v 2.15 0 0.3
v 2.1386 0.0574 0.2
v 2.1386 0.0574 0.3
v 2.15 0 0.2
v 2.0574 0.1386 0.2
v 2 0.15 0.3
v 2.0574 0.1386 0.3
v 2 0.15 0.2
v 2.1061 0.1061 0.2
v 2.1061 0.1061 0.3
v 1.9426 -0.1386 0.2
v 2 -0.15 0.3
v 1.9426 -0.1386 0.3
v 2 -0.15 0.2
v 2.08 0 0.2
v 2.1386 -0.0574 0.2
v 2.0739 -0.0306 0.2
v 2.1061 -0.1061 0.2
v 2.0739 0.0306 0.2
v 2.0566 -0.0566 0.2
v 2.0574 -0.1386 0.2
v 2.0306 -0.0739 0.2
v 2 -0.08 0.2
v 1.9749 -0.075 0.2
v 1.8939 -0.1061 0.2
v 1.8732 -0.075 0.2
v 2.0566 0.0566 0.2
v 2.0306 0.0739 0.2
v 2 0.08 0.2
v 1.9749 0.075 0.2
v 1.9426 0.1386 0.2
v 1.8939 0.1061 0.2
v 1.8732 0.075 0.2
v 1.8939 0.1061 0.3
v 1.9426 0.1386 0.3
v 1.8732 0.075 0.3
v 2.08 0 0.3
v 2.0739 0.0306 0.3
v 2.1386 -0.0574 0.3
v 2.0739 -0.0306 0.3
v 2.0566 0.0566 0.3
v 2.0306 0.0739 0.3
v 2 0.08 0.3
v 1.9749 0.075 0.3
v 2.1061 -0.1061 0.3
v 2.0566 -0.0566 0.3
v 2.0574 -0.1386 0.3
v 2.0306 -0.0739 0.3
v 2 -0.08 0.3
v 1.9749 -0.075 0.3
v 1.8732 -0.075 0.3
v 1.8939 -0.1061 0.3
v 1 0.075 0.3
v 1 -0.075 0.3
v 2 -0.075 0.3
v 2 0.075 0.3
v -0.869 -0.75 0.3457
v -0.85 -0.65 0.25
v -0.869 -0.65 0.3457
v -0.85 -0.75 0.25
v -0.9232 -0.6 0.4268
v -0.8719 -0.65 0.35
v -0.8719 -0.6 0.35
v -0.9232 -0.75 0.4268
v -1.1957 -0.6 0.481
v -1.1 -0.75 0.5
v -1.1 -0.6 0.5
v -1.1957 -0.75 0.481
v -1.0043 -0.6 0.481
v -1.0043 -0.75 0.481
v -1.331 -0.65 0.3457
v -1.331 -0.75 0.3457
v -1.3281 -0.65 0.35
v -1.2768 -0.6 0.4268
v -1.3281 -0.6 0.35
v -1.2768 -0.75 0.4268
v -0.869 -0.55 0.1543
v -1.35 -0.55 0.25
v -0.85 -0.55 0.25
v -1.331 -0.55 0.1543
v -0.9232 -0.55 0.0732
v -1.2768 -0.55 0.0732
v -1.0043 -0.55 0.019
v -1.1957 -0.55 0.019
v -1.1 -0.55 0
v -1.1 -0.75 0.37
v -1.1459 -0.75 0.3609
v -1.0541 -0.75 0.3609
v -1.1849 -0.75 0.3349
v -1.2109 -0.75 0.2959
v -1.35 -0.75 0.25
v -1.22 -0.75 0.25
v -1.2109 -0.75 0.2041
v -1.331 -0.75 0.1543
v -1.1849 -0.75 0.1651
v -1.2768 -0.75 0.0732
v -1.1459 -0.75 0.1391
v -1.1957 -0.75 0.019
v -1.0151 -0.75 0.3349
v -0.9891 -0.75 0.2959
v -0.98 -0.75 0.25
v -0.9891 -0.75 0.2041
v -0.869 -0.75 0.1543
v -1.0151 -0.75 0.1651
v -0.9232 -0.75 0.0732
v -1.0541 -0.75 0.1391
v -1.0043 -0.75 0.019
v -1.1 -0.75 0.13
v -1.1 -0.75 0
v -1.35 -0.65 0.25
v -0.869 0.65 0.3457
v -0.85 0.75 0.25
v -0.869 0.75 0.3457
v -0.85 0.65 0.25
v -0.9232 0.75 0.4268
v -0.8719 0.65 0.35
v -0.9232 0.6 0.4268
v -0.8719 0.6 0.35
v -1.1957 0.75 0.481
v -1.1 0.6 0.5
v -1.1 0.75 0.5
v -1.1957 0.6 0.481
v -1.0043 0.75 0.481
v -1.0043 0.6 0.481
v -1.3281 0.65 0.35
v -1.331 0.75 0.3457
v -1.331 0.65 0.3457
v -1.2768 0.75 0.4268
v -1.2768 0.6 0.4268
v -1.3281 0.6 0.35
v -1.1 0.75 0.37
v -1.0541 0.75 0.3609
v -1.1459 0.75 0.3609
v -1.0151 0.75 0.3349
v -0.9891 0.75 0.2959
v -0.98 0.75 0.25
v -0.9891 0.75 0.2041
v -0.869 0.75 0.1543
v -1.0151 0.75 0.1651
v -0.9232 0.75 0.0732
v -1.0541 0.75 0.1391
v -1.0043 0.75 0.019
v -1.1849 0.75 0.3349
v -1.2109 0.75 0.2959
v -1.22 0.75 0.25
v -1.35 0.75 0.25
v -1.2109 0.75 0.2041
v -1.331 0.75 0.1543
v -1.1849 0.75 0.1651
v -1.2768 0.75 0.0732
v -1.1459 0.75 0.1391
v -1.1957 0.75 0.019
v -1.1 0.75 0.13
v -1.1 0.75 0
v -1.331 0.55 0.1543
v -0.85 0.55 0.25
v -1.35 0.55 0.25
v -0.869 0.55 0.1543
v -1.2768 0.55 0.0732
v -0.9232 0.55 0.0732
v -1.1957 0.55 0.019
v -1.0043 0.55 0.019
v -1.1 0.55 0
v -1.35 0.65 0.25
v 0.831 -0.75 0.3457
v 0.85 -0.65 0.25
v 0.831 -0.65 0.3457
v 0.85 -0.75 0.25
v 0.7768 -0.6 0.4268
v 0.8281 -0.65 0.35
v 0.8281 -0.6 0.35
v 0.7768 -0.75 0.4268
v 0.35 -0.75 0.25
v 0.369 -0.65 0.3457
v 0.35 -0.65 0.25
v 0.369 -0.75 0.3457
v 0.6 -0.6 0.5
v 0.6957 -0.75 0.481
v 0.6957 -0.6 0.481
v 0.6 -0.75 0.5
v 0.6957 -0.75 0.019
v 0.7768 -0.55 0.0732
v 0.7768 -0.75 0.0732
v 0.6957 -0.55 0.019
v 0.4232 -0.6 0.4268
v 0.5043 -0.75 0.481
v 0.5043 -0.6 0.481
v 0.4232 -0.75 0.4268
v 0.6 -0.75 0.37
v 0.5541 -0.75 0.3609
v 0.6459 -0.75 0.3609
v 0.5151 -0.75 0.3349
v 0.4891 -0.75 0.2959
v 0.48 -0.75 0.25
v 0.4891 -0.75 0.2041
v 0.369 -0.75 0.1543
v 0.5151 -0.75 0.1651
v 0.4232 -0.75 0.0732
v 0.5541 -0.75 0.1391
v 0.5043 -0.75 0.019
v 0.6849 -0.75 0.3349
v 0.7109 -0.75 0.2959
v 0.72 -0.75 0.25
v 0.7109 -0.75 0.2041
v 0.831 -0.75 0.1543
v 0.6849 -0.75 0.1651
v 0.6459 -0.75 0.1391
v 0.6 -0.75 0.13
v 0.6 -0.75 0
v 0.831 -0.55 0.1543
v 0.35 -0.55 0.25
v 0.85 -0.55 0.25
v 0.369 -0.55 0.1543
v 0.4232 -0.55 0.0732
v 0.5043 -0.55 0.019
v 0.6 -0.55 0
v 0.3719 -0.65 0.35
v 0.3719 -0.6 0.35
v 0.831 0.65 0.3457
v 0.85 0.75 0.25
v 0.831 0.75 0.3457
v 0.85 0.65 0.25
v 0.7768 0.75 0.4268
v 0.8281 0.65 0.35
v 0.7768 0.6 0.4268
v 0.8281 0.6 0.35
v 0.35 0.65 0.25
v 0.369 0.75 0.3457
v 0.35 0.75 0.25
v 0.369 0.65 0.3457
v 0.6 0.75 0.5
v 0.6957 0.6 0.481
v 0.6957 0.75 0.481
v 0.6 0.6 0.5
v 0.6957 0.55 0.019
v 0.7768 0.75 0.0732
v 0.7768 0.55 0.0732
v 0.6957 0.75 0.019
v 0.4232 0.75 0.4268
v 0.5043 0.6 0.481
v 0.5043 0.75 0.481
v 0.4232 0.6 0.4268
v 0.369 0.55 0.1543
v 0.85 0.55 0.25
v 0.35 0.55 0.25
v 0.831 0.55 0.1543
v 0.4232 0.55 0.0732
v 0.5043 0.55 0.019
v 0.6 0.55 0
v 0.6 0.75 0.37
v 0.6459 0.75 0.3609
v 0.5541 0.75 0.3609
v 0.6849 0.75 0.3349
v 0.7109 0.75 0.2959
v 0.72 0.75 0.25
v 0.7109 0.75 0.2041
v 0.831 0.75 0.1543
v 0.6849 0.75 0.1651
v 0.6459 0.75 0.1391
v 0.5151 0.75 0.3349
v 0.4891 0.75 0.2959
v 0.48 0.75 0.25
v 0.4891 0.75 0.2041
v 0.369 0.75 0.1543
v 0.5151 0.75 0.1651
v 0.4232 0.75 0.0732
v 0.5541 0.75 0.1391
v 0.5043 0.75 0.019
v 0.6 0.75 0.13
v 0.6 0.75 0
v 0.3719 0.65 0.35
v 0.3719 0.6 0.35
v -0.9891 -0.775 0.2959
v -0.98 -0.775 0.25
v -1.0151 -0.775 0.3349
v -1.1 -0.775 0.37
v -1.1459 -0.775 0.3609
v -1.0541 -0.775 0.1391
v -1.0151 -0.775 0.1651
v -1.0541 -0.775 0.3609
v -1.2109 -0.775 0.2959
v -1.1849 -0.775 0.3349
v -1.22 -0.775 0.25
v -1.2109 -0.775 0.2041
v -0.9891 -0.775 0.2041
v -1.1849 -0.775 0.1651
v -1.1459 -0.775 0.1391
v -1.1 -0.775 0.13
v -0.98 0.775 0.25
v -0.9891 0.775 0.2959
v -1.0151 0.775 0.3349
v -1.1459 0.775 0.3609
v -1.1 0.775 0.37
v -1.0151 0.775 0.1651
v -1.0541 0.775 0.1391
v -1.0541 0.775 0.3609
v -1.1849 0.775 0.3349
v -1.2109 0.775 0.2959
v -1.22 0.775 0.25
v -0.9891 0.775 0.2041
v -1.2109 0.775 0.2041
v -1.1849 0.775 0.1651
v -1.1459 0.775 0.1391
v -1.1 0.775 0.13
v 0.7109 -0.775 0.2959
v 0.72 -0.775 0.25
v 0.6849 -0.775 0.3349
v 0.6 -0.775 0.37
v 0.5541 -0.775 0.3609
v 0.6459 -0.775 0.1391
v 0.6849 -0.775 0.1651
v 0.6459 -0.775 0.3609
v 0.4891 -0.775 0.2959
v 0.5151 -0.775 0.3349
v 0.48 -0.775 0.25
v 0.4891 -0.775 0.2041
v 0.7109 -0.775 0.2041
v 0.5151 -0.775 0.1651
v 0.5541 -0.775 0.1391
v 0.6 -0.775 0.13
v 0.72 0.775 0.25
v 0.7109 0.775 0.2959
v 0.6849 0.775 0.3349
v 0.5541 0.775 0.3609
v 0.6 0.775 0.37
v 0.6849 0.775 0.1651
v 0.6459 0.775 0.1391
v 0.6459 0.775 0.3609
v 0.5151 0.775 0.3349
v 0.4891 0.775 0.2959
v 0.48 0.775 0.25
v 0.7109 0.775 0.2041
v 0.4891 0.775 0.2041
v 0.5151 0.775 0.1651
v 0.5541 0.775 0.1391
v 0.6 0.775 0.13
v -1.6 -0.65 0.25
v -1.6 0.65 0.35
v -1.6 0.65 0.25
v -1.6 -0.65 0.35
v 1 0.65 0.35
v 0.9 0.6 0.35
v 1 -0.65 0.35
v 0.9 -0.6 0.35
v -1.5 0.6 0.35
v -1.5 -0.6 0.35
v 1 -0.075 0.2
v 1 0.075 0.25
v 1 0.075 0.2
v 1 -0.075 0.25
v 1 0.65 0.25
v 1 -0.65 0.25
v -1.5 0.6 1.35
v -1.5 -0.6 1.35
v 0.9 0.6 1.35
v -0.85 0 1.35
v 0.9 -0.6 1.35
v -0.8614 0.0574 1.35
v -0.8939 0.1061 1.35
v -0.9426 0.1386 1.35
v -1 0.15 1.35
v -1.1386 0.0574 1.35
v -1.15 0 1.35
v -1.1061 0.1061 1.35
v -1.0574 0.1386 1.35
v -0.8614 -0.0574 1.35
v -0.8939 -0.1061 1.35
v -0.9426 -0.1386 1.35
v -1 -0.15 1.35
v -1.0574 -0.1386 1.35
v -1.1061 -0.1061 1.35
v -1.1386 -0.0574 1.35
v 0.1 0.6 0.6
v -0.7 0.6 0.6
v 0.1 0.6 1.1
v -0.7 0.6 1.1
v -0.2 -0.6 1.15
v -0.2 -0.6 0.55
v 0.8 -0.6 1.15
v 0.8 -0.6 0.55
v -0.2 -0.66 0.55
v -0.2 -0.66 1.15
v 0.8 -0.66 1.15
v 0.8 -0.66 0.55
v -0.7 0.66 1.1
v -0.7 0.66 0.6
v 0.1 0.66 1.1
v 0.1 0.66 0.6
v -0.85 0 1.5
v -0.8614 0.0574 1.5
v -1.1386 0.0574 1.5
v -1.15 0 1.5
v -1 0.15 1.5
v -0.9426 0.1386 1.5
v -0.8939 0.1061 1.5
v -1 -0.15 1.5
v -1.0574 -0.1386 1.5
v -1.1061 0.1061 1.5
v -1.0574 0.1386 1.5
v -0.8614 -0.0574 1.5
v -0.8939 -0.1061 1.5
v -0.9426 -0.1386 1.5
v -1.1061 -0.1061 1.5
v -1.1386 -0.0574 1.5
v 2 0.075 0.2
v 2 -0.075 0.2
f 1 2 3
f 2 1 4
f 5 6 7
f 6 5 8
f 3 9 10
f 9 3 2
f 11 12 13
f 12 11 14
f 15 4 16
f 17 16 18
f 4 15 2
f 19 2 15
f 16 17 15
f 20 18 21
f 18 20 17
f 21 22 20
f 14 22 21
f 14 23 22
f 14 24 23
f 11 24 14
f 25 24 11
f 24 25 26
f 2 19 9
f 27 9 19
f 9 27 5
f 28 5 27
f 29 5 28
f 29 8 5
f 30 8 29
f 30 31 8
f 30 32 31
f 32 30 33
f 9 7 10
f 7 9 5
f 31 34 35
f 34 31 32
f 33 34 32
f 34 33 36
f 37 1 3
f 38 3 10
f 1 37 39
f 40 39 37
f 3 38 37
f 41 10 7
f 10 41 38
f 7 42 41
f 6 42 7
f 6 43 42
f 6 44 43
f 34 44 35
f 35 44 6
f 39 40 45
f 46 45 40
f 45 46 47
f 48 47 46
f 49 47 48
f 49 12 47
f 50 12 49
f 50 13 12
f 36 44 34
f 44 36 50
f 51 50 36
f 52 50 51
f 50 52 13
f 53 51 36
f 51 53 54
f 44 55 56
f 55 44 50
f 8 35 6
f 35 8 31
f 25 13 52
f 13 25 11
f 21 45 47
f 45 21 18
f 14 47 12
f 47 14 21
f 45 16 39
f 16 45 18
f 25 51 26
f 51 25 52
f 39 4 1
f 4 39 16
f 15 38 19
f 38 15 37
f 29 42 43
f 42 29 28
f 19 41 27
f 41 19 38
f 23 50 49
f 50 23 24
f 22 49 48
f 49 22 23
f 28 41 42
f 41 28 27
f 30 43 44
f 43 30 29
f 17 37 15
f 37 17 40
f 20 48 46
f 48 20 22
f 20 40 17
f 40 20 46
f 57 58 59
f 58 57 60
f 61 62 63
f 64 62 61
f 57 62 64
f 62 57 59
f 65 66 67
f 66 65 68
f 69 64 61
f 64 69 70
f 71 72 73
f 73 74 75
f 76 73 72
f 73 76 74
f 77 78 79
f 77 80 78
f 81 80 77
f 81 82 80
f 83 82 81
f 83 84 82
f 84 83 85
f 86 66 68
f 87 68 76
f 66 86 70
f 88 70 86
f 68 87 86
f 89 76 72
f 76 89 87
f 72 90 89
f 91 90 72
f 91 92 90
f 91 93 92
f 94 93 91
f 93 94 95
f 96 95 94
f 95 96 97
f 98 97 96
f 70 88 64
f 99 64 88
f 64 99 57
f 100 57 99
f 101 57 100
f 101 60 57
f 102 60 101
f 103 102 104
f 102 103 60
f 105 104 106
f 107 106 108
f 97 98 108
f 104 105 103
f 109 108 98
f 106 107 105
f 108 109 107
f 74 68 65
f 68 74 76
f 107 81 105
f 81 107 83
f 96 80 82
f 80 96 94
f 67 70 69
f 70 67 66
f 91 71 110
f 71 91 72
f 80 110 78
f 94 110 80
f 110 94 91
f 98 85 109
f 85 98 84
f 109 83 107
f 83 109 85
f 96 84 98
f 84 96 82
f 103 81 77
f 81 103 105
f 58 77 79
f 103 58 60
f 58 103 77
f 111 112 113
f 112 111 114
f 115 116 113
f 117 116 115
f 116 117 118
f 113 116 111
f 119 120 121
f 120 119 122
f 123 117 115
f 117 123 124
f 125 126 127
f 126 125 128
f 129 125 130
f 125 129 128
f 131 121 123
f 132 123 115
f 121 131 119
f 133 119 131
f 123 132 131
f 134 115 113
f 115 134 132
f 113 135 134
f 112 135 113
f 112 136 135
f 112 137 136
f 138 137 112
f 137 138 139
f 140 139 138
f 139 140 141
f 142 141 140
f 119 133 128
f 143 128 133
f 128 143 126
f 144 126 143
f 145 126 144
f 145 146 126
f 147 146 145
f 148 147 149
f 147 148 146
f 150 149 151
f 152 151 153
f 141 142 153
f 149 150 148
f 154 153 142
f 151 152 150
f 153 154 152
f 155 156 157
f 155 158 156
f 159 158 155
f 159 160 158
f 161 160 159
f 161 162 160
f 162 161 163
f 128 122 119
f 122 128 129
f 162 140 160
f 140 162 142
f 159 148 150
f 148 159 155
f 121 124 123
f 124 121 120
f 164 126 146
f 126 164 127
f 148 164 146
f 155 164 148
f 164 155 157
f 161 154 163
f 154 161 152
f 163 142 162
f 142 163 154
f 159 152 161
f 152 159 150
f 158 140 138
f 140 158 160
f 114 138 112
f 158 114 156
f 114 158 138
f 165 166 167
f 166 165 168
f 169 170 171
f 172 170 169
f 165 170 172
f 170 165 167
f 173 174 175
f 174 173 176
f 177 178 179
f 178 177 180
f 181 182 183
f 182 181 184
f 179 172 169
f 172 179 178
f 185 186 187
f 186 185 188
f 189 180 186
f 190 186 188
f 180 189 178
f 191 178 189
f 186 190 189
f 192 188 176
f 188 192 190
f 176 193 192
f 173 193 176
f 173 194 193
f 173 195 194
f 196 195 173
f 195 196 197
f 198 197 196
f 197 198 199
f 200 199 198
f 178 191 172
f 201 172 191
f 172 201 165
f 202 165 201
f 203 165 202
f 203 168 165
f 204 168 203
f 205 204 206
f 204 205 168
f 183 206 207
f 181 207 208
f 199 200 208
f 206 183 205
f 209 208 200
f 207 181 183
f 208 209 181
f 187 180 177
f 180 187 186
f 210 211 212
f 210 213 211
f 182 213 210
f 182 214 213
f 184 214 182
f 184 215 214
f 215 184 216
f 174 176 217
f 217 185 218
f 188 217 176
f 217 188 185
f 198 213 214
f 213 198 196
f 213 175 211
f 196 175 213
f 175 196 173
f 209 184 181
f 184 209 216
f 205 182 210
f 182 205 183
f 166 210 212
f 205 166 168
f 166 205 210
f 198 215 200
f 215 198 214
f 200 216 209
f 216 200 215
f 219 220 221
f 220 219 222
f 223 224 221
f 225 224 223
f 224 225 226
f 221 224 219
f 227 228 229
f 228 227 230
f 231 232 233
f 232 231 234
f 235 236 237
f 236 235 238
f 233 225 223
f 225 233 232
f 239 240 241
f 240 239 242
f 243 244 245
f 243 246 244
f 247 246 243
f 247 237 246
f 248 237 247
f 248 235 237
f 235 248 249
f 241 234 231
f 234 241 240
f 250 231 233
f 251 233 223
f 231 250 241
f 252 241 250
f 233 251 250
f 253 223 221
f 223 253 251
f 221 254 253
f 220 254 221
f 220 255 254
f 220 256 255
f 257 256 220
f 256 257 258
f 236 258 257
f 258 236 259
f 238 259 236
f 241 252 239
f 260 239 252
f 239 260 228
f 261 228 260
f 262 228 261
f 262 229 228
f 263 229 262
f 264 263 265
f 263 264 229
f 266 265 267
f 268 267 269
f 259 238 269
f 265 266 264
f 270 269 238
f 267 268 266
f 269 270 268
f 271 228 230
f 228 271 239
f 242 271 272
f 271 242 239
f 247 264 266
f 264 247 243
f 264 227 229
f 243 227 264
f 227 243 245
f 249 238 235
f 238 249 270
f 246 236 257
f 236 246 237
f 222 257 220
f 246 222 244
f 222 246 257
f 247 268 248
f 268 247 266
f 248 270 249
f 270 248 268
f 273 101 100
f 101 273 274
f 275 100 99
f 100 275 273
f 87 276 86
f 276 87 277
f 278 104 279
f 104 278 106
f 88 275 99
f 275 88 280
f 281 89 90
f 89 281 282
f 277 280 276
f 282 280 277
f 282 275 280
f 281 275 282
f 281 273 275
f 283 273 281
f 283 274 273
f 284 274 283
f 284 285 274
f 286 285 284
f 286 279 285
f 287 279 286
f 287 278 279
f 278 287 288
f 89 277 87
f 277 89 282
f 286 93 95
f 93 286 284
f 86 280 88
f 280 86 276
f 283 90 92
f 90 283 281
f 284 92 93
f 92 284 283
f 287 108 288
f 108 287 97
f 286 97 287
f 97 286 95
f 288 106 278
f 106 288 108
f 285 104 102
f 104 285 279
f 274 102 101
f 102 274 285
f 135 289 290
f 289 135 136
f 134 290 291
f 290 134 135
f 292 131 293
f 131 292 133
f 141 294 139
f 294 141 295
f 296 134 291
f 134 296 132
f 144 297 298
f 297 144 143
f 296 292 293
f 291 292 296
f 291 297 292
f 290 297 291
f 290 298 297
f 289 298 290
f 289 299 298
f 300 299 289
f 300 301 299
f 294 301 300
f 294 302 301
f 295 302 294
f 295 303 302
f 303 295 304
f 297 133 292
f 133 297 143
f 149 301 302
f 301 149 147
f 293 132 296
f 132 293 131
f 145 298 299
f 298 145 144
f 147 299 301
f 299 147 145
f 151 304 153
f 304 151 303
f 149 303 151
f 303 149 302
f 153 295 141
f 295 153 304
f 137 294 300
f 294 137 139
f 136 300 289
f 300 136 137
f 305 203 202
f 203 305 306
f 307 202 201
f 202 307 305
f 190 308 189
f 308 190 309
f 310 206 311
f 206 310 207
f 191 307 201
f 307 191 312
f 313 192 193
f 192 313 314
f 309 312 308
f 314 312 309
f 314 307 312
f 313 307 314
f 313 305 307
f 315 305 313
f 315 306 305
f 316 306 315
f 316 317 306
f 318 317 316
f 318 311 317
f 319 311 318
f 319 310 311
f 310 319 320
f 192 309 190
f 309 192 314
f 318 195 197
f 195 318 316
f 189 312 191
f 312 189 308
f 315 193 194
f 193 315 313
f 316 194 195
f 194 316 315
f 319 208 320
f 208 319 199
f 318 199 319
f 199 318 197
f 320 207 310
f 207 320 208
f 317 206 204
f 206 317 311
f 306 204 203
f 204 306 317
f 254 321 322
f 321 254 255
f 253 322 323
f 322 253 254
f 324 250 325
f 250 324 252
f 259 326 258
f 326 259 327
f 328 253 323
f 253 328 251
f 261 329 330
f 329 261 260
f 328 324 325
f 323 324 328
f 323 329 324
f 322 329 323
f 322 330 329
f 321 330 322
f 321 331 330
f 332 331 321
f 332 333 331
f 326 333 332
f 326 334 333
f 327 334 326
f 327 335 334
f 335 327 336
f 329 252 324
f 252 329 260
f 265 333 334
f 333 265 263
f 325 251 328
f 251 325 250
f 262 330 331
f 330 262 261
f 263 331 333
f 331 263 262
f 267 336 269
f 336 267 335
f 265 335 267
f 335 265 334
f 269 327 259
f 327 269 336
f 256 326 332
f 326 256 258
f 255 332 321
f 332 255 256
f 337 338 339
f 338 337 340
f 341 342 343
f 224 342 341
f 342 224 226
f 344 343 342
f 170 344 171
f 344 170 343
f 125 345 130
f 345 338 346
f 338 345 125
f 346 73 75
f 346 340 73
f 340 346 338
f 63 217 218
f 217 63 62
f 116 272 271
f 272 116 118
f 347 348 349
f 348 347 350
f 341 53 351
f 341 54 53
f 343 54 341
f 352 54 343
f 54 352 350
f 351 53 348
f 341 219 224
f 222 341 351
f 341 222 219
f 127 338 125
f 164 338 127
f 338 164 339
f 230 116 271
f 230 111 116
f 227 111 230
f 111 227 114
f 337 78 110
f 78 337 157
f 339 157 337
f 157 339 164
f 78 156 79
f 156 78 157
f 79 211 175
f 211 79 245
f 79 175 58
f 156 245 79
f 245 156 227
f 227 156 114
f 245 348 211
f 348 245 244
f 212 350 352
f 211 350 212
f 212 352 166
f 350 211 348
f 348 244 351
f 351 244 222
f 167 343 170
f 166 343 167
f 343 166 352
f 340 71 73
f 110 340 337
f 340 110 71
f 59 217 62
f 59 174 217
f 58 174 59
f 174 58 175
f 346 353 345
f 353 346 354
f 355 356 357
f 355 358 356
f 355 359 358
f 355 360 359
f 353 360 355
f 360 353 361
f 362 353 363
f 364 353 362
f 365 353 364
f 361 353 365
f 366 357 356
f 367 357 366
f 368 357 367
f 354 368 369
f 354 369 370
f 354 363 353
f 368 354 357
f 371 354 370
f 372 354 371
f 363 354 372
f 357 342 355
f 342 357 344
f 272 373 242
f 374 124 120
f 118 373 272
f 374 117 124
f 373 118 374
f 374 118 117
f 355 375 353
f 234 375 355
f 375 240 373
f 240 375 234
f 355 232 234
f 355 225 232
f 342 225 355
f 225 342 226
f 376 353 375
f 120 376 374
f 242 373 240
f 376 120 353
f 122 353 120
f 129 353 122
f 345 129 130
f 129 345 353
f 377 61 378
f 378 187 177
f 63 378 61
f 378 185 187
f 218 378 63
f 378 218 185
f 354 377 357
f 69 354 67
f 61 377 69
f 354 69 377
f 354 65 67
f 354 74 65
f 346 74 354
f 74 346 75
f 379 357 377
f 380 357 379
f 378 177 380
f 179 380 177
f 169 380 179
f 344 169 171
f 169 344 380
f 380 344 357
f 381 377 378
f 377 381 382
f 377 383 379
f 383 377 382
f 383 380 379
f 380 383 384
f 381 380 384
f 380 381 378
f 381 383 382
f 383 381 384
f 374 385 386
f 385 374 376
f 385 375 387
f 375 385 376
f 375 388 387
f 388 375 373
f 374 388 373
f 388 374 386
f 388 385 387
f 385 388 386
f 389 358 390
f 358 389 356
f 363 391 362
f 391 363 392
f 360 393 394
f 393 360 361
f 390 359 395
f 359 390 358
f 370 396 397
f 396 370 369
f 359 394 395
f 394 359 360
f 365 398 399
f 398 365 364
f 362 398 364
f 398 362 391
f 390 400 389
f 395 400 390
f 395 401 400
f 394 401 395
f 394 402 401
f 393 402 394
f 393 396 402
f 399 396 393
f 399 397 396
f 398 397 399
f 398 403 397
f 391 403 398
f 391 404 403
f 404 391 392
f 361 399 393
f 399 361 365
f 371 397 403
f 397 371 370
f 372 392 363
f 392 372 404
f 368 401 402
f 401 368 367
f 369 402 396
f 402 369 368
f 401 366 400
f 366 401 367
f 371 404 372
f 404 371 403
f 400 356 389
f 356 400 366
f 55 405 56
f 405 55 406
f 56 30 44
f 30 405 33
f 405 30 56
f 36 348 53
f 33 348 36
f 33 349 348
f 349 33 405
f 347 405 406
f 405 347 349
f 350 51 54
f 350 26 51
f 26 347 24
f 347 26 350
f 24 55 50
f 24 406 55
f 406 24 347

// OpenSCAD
// Ground Power Unit (GPU) Cart
// Low-poly, architectural toy style

$fn = 16;

module GPU_Cart() {
    // trailer
    color("dimgray")
    translate([-0.3, 0, 0.3])
        cube([2.6, 1.3, 0.1], center=true);

    // enclosure
    color("white")
    translate([-0.3, 0, 0.85])
        cube([2.4, 1.2, 1.0], center=true);


    // grille
    color("silver")
    translate([0.3, -0.61, 0.85])
        cube([1.0, 0.1, 0.6], center=true);

    // control panel
    color("darkslategray")
    translate([-0.3, 0.61, 0.85])
        cube([0.8, 0.1, 0.5], center=true);

    // Exhaust pipe
    color("silver")
    translate([-1.0, 0, 1.35])
        cylinder(h=0.15, r=0.15, center=false);

    //Tow Bar Assembly
    color("orange")
    translate([1.5, 0, 0.25])
        cube([1.0, 0.15, 0.1], center=true);

    // Tow ring
    color("orange")
    translate([2.0, 0, 0.25])
        difference() {
            cylinder(h=0.1, r=0.15, center=true);
            cylinder(h=0.12, r=0.08, center=true);
        }

    //Wheels
    wheel_x_positions = [-1.1, 0.6];
    wheel_y_positions = [-0.65, 0.65];

    // Tires
    color("black") {
        for (x = wheel_x_positions) {
            for (y = wheel_y_positions) {
                translate([x, y, 0.25])
                rotate([90, 0, 0])
                    cylinder(h=0.2, r=0.25, center=true);
            }
        }
    }
    
    // hubcaps
    color("silver") {
        for (x = wheel_x_positions) {
            for (y = wheel_y_positions) {
                y_offset = (y > 0) ? y + 0.05 : y - 0.05;
                translate([x, y_offset, 0.25])
                rotate([90, 0, 0])
                    cylinder(h=0.15, r=0.12, center=true);
            }
        }
    }
}


GPU_Cart();
